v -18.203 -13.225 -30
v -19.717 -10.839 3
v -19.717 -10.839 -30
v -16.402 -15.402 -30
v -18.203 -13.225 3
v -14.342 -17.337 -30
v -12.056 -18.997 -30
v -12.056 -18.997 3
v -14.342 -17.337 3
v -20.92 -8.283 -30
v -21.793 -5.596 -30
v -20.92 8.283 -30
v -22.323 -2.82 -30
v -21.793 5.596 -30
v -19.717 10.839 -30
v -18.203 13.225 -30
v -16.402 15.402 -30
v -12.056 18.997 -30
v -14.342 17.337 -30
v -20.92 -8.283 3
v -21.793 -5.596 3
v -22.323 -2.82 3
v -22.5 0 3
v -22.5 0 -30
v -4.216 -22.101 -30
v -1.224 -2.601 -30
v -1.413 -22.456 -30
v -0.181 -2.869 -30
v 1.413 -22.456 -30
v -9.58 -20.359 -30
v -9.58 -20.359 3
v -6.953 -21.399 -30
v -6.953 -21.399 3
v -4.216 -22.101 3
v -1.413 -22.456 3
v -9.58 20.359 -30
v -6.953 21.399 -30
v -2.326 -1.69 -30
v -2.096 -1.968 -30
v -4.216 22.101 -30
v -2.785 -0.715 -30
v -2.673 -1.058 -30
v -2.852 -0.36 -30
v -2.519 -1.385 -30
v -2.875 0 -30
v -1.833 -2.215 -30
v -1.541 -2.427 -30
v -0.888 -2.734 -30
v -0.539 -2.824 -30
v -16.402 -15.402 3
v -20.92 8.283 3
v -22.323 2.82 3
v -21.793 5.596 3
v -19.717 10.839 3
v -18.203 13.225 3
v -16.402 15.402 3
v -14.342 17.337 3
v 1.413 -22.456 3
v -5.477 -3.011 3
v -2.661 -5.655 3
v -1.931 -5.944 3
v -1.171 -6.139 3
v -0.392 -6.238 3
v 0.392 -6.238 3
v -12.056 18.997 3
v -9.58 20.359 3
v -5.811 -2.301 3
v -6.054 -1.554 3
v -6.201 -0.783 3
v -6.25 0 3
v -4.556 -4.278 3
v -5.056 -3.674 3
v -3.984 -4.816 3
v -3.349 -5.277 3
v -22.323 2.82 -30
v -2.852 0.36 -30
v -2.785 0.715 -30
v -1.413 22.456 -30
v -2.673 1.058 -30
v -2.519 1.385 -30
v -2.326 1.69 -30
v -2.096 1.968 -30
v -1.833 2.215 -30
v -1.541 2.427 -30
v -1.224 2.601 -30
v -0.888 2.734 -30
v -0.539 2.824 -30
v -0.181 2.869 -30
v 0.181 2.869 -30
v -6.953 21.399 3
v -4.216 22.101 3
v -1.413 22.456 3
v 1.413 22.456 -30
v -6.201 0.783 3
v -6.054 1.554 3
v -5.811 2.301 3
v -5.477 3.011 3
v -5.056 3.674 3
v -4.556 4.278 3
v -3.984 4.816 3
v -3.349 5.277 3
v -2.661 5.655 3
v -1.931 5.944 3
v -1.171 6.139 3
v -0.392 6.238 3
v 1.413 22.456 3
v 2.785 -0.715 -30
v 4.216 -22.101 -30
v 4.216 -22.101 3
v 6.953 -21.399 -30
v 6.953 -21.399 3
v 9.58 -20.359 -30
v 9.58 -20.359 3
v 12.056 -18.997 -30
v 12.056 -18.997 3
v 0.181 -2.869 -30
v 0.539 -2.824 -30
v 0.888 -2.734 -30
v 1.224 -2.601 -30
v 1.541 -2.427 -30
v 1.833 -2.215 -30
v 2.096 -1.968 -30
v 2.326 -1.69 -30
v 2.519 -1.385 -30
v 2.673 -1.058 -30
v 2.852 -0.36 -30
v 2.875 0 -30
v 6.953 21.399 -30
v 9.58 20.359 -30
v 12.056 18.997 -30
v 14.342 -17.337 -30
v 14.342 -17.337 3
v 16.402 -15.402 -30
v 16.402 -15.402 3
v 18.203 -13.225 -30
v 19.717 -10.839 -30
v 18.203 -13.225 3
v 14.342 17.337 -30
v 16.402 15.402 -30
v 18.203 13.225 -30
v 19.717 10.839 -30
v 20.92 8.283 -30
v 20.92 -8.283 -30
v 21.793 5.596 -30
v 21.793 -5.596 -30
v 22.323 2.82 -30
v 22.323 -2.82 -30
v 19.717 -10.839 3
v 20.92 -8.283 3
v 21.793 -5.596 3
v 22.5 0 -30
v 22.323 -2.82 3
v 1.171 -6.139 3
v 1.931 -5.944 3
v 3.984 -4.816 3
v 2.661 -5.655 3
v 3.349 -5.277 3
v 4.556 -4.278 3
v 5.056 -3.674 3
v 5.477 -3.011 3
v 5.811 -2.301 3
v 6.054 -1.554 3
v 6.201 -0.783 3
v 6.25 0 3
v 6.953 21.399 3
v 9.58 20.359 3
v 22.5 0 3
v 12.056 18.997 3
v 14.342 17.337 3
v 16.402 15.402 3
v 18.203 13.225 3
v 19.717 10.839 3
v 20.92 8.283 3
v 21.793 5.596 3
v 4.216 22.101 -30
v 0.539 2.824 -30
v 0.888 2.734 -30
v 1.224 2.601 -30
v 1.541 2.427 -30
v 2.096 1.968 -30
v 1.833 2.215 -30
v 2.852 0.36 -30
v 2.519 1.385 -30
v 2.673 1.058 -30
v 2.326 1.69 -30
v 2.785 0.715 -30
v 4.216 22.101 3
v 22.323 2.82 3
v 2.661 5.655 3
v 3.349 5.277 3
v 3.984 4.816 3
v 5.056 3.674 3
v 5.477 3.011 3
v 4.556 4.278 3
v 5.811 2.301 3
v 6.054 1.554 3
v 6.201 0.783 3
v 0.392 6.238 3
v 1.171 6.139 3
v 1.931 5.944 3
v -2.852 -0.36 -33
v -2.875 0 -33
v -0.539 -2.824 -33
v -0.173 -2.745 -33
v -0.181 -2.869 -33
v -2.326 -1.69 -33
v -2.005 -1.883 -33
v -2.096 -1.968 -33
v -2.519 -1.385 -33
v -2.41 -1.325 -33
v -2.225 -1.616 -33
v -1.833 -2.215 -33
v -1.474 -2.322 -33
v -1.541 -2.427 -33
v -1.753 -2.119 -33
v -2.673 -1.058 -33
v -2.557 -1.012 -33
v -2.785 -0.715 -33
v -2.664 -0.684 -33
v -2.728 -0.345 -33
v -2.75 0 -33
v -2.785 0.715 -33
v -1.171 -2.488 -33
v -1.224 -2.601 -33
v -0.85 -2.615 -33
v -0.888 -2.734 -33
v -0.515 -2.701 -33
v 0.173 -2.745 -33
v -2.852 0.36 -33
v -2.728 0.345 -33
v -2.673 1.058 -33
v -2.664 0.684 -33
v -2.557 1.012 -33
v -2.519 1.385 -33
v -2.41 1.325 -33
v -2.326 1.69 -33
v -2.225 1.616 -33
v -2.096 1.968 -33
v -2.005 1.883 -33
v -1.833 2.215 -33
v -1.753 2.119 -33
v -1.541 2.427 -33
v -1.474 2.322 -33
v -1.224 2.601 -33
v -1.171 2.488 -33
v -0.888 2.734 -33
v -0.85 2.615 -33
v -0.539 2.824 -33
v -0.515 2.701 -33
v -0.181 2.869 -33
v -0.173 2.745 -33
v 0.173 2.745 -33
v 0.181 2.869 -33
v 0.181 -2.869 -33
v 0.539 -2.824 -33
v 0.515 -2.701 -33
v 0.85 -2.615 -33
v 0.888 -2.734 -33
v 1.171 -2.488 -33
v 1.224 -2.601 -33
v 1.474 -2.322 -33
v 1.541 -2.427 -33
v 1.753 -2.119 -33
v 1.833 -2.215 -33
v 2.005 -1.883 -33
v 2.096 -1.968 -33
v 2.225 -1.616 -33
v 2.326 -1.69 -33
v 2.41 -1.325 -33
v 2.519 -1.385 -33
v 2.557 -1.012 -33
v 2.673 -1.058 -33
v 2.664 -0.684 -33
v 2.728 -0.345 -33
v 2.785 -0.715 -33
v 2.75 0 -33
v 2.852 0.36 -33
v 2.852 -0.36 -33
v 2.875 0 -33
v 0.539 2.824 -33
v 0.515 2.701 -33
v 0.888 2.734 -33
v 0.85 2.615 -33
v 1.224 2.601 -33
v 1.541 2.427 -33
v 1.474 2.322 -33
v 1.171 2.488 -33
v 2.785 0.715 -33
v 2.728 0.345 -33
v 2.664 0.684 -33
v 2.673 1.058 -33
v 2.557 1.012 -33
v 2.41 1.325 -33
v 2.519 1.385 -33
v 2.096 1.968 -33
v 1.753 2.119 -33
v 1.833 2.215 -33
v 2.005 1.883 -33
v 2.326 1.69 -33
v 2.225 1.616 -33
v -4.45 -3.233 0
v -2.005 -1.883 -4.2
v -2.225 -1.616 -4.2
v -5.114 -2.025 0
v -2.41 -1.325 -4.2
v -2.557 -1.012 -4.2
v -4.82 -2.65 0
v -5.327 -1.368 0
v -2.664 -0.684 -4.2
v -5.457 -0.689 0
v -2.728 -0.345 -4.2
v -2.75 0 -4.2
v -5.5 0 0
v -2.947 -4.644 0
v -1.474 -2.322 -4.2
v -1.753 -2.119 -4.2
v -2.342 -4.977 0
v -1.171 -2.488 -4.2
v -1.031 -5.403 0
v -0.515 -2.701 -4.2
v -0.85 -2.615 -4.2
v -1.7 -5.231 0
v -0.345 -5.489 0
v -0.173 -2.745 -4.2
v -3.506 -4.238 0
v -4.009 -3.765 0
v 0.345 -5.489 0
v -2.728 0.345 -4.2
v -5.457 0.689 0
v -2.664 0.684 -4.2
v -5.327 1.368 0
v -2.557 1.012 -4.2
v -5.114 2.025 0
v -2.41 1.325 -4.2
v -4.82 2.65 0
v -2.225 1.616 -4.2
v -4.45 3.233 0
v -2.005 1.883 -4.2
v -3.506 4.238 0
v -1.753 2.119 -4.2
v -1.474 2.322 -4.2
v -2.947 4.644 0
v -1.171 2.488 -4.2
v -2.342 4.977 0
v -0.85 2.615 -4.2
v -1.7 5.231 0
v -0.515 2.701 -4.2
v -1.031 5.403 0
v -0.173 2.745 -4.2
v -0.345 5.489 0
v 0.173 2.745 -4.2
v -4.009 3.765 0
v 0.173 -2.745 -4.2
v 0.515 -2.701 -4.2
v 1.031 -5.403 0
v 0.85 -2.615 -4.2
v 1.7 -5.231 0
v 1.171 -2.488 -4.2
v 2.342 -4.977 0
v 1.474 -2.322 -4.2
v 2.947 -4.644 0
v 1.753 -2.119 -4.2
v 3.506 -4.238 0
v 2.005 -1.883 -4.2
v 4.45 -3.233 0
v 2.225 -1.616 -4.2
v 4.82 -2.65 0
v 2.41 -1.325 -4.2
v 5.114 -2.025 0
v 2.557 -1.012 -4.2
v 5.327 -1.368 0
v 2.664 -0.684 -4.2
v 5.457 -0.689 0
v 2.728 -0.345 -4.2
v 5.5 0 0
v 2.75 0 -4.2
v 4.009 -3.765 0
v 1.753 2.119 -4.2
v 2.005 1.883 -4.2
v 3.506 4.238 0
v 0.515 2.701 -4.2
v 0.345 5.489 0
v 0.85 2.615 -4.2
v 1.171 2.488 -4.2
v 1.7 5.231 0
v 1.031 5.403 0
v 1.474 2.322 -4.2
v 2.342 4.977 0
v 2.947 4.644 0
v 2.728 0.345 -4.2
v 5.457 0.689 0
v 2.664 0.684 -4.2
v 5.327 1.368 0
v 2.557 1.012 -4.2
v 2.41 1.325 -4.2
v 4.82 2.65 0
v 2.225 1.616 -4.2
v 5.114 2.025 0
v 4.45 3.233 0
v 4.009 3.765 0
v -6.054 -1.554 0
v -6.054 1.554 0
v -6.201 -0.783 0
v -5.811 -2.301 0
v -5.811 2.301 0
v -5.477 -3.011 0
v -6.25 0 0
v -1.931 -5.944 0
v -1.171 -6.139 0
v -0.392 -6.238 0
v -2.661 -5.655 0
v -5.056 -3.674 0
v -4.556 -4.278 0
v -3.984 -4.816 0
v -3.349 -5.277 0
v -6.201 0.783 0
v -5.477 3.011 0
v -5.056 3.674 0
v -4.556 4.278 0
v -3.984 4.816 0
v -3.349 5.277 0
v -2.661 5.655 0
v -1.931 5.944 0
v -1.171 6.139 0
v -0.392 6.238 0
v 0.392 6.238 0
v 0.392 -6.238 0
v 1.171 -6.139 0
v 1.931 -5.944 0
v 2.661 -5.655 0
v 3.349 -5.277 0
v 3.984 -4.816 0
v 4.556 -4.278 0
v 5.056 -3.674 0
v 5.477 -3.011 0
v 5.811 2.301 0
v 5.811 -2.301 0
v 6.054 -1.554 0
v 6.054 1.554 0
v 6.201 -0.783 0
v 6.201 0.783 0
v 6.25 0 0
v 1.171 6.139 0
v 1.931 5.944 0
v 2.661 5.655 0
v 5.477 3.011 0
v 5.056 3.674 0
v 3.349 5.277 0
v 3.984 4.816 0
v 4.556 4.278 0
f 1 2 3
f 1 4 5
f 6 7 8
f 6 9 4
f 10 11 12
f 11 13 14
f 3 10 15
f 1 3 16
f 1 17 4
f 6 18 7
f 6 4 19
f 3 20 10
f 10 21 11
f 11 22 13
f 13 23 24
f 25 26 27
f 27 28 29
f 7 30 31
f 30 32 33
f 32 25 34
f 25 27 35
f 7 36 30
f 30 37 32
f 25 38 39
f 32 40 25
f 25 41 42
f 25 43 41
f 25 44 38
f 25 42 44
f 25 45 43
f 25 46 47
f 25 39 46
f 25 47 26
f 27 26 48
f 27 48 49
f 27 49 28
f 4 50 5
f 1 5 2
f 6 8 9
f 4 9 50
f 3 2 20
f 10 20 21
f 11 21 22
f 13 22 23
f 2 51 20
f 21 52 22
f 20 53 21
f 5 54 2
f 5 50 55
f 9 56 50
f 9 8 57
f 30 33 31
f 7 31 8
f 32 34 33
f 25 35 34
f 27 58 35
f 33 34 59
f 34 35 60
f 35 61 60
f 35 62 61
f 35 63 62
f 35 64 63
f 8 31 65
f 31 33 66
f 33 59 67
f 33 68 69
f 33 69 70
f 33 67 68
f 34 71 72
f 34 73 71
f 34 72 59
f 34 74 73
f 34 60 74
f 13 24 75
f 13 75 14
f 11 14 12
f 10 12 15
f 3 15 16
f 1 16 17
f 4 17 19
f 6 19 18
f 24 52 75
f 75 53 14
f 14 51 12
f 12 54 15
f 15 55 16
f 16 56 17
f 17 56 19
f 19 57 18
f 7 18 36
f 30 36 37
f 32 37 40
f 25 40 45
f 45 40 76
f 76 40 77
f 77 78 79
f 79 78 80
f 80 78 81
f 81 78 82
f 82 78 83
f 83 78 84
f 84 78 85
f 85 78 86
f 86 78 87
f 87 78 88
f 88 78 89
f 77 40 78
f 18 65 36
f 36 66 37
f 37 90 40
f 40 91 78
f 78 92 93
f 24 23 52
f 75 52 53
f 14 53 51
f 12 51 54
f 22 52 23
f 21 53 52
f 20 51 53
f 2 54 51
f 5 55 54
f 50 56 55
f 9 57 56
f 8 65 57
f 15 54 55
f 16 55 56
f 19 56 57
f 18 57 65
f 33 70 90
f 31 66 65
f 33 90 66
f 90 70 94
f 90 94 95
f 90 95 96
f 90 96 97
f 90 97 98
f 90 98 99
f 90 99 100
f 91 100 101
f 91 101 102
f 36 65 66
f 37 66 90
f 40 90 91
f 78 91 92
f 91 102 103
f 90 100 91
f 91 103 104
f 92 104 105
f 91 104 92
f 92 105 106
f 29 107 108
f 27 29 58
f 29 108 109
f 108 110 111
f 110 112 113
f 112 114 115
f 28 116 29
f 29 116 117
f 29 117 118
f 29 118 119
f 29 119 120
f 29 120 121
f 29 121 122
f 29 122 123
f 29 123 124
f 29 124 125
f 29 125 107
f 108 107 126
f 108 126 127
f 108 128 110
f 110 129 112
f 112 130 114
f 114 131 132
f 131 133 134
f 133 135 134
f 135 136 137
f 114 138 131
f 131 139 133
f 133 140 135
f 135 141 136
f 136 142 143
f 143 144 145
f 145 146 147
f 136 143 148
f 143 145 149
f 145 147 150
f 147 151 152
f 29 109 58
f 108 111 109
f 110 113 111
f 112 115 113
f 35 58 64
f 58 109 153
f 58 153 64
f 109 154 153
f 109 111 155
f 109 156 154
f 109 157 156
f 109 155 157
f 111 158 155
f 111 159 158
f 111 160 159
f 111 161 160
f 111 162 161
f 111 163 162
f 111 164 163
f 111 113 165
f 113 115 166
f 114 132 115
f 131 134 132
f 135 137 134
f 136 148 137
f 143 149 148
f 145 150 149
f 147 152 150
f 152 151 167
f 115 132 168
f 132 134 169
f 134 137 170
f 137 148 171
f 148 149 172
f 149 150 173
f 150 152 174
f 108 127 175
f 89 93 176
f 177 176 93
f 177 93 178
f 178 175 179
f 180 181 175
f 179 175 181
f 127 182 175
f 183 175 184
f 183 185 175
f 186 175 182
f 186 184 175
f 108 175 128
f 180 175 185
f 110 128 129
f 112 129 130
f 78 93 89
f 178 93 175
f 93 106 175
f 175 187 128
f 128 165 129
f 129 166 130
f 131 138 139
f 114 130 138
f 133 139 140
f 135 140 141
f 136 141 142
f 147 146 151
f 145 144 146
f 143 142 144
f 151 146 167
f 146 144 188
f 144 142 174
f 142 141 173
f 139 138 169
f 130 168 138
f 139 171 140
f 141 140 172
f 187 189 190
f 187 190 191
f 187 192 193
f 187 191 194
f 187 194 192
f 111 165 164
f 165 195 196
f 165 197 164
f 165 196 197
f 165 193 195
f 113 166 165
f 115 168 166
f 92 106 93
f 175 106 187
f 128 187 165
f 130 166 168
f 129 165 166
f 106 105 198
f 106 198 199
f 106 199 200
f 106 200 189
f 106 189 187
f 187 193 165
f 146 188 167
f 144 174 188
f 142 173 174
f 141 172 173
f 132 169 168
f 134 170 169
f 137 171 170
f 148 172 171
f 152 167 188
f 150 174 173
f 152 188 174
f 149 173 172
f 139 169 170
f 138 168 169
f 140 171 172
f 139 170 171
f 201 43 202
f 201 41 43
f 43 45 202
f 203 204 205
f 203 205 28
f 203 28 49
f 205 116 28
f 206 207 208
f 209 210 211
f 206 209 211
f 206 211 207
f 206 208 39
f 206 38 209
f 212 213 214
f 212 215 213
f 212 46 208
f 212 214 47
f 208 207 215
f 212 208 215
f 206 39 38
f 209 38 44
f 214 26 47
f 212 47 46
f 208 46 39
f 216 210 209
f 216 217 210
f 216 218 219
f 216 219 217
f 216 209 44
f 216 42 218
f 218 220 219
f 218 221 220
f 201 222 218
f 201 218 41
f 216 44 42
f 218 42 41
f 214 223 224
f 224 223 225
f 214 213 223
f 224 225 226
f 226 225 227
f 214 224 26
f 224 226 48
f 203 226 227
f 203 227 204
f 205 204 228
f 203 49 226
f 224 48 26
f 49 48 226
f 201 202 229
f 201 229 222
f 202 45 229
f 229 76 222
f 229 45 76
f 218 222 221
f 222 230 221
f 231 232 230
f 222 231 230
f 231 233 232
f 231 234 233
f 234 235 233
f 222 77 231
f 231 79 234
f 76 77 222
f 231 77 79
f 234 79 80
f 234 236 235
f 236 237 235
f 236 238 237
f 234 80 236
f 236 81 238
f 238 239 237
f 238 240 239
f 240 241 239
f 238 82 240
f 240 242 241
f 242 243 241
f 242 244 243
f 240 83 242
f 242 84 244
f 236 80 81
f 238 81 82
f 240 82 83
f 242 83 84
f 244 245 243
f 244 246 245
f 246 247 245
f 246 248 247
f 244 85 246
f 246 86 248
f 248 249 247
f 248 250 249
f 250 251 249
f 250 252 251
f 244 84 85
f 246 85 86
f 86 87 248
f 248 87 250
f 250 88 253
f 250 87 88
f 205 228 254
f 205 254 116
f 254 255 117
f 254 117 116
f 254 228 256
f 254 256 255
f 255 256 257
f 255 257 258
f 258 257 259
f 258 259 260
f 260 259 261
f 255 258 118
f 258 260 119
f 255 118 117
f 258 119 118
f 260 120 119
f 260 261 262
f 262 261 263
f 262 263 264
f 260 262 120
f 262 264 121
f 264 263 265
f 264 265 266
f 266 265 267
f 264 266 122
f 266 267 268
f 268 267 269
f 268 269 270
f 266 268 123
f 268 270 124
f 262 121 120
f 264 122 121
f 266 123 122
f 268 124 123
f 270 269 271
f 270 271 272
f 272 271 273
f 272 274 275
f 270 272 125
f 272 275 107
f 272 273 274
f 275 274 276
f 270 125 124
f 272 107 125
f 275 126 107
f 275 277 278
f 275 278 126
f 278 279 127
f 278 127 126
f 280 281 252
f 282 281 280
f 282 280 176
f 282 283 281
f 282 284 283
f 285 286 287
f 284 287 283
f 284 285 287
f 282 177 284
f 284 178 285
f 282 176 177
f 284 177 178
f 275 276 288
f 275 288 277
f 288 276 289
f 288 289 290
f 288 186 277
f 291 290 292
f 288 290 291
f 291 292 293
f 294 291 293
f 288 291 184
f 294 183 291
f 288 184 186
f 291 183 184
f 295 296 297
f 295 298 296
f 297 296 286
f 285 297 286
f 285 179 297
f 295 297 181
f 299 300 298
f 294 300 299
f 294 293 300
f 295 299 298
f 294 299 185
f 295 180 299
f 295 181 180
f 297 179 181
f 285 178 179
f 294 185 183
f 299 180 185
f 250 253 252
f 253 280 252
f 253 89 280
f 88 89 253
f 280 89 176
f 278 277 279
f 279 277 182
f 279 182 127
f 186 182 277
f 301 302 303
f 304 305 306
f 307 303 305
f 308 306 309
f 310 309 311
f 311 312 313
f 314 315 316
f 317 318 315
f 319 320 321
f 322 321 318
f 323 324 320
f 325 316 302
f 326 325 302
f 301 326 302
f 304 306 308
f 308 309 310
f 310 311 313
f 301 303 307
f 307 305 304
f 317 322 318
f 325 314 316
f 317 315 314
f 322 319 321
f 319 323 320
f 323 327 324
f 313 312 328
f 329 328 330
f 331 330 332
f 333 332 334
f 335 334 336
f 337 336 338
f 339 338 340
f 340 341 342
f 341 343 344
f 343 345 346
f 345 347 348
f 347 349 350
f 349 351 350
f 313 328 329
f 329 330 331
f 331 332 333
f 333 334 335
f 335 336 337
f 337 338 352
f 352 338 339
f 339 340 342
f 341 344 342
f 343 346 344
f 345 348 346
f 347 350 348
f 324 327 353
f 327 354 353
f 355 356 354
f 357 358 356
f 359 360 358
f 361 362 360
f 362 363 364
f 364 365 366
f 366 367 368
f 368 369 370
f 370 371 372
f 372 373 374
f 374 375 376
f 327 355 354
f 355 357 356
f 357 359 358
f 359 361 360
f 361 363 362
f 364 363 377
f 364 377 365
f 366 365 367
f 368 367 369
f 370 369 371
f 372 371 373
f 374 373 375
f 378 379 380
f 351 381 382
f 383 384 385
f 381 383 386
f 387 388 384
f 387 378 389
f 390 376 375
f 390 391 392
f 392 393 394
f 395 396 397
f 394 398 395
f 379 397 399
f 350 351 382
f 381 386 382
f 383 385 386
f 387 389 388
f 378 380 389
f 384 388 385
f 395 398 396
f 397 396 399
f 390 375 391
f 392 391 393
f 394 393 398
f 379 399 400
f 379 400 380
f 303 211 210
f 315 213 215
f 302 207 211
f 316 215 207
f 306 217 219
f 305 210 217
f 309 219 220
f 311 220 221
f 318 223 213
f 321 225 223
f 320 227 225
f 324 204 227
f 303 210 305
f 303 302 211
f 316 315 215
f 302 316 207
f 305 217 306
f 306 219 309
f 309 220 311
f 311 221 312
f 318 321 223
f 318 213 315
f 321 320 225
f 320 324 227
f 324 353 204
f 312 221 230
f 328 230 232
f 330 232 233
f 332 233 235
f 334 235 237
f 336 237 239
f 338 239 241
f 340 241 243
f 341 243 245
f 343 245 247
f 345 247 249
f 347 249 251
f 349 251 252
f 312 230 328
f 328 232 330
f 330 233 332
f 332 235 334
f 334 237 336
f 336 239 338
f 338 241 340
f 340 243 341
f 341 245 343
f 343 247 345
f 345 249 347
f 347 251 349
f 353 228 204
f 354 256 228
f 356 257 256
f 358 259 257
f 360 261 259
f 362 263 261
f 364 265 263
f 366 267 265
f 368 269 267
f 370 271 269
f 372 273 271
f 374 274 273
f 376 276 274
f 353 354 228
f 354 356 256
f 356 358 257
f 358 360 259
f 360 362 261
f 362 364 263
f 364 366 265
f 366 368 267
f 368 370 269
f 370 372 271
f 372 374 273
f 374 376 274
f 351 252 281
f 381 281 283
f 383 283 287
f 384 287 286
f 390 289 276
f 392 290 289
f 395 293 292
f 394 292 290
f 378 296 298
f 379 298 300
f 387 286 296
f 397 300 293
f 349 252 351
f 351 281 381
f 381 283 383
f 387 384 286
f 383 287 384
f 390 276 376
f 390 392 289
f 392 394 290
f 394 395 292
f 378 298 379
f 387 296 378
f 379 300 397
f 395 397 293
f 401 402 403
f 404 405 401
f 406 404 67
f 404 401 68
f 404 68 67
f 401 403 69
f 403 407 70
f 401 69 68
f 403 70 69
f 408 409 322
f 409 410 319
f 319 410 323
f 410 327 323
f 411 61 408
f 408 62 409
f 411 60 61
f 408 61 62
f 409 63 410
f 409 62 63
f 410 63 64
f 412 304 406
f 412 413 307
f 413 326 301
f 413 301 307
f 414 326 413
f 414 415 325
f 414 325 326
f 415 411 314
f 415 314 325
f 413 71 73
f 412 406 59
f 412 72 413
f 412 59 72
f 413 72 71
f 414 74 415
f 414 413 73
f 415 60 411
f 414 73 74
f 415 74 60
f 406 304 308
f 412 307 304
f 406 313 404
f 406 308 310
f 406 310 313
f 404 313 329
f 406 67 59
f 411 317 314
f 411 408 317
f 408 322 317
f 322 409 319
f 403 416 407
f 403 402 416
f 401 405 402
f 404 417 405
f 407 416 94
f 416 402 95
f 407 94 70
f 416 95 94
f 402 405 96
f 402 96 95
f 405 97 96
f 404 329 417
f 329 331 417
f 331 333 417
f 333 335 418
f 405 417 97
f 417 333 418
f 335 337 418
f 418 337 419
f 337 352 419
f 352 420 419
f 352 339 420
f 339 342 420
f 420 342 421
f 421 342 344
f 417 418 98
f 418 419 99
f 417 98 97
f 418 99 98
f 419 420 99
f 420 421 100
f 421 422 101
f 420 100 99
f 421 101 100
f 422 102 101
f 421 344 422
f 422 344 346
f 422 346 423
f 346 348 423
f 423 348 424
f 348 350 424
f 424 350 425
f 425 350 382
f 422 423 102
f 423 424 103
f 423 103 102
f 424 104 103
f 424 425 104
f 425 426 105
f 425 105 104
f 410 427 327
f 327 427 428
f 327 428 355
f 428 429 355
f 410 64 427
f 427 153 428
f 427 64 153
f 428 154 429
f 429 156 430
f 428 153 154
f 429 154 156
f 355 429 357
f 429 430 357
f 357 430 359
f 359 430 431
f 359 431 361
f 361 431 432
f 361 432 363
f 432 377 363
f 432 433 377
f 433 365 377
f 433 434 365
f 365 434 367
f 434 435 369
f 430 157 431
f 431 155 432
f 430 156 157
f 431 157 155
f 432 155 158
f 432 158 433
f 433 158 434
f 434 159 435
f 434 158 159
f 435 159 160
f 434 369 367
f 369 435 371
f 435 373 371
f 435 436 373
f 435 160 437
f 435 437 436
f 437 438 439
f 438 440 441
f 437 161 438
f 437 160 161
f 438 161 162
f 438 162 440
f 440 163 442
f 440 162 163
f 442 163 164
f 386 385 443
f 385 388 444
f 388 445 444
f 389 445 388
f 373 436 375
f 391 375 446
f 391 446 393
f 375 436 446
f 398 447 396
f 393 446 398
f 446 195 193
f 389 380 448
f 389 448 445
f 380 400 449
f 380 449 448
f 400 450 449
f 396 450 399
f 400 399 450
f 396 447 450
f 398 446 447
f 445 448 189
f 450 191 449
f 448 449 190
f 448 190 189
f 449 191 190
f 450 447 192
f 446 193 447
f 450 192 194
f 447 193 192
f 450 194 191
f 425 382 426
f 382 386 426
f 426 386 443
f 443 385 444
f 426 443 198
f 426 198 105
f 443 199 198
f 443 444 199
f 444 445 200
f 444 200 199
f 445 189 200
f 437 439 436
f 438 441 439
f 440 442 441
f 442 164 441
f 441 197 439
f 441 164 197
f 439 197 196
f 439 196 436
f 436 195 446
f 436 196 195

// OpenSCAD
$fn = 50;

difference() {
	union() {
		translate(v = [0, 0, -30.0]) {
			cylinder(h = 33, r = 22.5);
		}
		#translate(v = [0, 0, -33.0]) {
			cylinder(h = 33, r = 2.875);
		}
	}
	union() {
		translate(v = [0, 0, 0]) {
			rotate(a = [0, 0, 0]) {
				difference() {
					union() {
						translate(v = [0, 0, -33.0]) {
							cylinder(h = 33, r = 2.25);
						}
						translate(v = [0, 0, -4.2]) {
							cylinder(h = 4.2, r1 = 2.75, r2 = 5.5);
						}
						translate(v = [0, 0, -33.0]) {
							cylinder(h = 33, r = 2.75);
						}
						translate(v = [0, 0, -33.0]) {
							cylinder(h = 33, r = 2.25);
						}
					}
					union();
				}
			}
		}
		#cylinder(h = 3, r = 6.25);
	}
}
